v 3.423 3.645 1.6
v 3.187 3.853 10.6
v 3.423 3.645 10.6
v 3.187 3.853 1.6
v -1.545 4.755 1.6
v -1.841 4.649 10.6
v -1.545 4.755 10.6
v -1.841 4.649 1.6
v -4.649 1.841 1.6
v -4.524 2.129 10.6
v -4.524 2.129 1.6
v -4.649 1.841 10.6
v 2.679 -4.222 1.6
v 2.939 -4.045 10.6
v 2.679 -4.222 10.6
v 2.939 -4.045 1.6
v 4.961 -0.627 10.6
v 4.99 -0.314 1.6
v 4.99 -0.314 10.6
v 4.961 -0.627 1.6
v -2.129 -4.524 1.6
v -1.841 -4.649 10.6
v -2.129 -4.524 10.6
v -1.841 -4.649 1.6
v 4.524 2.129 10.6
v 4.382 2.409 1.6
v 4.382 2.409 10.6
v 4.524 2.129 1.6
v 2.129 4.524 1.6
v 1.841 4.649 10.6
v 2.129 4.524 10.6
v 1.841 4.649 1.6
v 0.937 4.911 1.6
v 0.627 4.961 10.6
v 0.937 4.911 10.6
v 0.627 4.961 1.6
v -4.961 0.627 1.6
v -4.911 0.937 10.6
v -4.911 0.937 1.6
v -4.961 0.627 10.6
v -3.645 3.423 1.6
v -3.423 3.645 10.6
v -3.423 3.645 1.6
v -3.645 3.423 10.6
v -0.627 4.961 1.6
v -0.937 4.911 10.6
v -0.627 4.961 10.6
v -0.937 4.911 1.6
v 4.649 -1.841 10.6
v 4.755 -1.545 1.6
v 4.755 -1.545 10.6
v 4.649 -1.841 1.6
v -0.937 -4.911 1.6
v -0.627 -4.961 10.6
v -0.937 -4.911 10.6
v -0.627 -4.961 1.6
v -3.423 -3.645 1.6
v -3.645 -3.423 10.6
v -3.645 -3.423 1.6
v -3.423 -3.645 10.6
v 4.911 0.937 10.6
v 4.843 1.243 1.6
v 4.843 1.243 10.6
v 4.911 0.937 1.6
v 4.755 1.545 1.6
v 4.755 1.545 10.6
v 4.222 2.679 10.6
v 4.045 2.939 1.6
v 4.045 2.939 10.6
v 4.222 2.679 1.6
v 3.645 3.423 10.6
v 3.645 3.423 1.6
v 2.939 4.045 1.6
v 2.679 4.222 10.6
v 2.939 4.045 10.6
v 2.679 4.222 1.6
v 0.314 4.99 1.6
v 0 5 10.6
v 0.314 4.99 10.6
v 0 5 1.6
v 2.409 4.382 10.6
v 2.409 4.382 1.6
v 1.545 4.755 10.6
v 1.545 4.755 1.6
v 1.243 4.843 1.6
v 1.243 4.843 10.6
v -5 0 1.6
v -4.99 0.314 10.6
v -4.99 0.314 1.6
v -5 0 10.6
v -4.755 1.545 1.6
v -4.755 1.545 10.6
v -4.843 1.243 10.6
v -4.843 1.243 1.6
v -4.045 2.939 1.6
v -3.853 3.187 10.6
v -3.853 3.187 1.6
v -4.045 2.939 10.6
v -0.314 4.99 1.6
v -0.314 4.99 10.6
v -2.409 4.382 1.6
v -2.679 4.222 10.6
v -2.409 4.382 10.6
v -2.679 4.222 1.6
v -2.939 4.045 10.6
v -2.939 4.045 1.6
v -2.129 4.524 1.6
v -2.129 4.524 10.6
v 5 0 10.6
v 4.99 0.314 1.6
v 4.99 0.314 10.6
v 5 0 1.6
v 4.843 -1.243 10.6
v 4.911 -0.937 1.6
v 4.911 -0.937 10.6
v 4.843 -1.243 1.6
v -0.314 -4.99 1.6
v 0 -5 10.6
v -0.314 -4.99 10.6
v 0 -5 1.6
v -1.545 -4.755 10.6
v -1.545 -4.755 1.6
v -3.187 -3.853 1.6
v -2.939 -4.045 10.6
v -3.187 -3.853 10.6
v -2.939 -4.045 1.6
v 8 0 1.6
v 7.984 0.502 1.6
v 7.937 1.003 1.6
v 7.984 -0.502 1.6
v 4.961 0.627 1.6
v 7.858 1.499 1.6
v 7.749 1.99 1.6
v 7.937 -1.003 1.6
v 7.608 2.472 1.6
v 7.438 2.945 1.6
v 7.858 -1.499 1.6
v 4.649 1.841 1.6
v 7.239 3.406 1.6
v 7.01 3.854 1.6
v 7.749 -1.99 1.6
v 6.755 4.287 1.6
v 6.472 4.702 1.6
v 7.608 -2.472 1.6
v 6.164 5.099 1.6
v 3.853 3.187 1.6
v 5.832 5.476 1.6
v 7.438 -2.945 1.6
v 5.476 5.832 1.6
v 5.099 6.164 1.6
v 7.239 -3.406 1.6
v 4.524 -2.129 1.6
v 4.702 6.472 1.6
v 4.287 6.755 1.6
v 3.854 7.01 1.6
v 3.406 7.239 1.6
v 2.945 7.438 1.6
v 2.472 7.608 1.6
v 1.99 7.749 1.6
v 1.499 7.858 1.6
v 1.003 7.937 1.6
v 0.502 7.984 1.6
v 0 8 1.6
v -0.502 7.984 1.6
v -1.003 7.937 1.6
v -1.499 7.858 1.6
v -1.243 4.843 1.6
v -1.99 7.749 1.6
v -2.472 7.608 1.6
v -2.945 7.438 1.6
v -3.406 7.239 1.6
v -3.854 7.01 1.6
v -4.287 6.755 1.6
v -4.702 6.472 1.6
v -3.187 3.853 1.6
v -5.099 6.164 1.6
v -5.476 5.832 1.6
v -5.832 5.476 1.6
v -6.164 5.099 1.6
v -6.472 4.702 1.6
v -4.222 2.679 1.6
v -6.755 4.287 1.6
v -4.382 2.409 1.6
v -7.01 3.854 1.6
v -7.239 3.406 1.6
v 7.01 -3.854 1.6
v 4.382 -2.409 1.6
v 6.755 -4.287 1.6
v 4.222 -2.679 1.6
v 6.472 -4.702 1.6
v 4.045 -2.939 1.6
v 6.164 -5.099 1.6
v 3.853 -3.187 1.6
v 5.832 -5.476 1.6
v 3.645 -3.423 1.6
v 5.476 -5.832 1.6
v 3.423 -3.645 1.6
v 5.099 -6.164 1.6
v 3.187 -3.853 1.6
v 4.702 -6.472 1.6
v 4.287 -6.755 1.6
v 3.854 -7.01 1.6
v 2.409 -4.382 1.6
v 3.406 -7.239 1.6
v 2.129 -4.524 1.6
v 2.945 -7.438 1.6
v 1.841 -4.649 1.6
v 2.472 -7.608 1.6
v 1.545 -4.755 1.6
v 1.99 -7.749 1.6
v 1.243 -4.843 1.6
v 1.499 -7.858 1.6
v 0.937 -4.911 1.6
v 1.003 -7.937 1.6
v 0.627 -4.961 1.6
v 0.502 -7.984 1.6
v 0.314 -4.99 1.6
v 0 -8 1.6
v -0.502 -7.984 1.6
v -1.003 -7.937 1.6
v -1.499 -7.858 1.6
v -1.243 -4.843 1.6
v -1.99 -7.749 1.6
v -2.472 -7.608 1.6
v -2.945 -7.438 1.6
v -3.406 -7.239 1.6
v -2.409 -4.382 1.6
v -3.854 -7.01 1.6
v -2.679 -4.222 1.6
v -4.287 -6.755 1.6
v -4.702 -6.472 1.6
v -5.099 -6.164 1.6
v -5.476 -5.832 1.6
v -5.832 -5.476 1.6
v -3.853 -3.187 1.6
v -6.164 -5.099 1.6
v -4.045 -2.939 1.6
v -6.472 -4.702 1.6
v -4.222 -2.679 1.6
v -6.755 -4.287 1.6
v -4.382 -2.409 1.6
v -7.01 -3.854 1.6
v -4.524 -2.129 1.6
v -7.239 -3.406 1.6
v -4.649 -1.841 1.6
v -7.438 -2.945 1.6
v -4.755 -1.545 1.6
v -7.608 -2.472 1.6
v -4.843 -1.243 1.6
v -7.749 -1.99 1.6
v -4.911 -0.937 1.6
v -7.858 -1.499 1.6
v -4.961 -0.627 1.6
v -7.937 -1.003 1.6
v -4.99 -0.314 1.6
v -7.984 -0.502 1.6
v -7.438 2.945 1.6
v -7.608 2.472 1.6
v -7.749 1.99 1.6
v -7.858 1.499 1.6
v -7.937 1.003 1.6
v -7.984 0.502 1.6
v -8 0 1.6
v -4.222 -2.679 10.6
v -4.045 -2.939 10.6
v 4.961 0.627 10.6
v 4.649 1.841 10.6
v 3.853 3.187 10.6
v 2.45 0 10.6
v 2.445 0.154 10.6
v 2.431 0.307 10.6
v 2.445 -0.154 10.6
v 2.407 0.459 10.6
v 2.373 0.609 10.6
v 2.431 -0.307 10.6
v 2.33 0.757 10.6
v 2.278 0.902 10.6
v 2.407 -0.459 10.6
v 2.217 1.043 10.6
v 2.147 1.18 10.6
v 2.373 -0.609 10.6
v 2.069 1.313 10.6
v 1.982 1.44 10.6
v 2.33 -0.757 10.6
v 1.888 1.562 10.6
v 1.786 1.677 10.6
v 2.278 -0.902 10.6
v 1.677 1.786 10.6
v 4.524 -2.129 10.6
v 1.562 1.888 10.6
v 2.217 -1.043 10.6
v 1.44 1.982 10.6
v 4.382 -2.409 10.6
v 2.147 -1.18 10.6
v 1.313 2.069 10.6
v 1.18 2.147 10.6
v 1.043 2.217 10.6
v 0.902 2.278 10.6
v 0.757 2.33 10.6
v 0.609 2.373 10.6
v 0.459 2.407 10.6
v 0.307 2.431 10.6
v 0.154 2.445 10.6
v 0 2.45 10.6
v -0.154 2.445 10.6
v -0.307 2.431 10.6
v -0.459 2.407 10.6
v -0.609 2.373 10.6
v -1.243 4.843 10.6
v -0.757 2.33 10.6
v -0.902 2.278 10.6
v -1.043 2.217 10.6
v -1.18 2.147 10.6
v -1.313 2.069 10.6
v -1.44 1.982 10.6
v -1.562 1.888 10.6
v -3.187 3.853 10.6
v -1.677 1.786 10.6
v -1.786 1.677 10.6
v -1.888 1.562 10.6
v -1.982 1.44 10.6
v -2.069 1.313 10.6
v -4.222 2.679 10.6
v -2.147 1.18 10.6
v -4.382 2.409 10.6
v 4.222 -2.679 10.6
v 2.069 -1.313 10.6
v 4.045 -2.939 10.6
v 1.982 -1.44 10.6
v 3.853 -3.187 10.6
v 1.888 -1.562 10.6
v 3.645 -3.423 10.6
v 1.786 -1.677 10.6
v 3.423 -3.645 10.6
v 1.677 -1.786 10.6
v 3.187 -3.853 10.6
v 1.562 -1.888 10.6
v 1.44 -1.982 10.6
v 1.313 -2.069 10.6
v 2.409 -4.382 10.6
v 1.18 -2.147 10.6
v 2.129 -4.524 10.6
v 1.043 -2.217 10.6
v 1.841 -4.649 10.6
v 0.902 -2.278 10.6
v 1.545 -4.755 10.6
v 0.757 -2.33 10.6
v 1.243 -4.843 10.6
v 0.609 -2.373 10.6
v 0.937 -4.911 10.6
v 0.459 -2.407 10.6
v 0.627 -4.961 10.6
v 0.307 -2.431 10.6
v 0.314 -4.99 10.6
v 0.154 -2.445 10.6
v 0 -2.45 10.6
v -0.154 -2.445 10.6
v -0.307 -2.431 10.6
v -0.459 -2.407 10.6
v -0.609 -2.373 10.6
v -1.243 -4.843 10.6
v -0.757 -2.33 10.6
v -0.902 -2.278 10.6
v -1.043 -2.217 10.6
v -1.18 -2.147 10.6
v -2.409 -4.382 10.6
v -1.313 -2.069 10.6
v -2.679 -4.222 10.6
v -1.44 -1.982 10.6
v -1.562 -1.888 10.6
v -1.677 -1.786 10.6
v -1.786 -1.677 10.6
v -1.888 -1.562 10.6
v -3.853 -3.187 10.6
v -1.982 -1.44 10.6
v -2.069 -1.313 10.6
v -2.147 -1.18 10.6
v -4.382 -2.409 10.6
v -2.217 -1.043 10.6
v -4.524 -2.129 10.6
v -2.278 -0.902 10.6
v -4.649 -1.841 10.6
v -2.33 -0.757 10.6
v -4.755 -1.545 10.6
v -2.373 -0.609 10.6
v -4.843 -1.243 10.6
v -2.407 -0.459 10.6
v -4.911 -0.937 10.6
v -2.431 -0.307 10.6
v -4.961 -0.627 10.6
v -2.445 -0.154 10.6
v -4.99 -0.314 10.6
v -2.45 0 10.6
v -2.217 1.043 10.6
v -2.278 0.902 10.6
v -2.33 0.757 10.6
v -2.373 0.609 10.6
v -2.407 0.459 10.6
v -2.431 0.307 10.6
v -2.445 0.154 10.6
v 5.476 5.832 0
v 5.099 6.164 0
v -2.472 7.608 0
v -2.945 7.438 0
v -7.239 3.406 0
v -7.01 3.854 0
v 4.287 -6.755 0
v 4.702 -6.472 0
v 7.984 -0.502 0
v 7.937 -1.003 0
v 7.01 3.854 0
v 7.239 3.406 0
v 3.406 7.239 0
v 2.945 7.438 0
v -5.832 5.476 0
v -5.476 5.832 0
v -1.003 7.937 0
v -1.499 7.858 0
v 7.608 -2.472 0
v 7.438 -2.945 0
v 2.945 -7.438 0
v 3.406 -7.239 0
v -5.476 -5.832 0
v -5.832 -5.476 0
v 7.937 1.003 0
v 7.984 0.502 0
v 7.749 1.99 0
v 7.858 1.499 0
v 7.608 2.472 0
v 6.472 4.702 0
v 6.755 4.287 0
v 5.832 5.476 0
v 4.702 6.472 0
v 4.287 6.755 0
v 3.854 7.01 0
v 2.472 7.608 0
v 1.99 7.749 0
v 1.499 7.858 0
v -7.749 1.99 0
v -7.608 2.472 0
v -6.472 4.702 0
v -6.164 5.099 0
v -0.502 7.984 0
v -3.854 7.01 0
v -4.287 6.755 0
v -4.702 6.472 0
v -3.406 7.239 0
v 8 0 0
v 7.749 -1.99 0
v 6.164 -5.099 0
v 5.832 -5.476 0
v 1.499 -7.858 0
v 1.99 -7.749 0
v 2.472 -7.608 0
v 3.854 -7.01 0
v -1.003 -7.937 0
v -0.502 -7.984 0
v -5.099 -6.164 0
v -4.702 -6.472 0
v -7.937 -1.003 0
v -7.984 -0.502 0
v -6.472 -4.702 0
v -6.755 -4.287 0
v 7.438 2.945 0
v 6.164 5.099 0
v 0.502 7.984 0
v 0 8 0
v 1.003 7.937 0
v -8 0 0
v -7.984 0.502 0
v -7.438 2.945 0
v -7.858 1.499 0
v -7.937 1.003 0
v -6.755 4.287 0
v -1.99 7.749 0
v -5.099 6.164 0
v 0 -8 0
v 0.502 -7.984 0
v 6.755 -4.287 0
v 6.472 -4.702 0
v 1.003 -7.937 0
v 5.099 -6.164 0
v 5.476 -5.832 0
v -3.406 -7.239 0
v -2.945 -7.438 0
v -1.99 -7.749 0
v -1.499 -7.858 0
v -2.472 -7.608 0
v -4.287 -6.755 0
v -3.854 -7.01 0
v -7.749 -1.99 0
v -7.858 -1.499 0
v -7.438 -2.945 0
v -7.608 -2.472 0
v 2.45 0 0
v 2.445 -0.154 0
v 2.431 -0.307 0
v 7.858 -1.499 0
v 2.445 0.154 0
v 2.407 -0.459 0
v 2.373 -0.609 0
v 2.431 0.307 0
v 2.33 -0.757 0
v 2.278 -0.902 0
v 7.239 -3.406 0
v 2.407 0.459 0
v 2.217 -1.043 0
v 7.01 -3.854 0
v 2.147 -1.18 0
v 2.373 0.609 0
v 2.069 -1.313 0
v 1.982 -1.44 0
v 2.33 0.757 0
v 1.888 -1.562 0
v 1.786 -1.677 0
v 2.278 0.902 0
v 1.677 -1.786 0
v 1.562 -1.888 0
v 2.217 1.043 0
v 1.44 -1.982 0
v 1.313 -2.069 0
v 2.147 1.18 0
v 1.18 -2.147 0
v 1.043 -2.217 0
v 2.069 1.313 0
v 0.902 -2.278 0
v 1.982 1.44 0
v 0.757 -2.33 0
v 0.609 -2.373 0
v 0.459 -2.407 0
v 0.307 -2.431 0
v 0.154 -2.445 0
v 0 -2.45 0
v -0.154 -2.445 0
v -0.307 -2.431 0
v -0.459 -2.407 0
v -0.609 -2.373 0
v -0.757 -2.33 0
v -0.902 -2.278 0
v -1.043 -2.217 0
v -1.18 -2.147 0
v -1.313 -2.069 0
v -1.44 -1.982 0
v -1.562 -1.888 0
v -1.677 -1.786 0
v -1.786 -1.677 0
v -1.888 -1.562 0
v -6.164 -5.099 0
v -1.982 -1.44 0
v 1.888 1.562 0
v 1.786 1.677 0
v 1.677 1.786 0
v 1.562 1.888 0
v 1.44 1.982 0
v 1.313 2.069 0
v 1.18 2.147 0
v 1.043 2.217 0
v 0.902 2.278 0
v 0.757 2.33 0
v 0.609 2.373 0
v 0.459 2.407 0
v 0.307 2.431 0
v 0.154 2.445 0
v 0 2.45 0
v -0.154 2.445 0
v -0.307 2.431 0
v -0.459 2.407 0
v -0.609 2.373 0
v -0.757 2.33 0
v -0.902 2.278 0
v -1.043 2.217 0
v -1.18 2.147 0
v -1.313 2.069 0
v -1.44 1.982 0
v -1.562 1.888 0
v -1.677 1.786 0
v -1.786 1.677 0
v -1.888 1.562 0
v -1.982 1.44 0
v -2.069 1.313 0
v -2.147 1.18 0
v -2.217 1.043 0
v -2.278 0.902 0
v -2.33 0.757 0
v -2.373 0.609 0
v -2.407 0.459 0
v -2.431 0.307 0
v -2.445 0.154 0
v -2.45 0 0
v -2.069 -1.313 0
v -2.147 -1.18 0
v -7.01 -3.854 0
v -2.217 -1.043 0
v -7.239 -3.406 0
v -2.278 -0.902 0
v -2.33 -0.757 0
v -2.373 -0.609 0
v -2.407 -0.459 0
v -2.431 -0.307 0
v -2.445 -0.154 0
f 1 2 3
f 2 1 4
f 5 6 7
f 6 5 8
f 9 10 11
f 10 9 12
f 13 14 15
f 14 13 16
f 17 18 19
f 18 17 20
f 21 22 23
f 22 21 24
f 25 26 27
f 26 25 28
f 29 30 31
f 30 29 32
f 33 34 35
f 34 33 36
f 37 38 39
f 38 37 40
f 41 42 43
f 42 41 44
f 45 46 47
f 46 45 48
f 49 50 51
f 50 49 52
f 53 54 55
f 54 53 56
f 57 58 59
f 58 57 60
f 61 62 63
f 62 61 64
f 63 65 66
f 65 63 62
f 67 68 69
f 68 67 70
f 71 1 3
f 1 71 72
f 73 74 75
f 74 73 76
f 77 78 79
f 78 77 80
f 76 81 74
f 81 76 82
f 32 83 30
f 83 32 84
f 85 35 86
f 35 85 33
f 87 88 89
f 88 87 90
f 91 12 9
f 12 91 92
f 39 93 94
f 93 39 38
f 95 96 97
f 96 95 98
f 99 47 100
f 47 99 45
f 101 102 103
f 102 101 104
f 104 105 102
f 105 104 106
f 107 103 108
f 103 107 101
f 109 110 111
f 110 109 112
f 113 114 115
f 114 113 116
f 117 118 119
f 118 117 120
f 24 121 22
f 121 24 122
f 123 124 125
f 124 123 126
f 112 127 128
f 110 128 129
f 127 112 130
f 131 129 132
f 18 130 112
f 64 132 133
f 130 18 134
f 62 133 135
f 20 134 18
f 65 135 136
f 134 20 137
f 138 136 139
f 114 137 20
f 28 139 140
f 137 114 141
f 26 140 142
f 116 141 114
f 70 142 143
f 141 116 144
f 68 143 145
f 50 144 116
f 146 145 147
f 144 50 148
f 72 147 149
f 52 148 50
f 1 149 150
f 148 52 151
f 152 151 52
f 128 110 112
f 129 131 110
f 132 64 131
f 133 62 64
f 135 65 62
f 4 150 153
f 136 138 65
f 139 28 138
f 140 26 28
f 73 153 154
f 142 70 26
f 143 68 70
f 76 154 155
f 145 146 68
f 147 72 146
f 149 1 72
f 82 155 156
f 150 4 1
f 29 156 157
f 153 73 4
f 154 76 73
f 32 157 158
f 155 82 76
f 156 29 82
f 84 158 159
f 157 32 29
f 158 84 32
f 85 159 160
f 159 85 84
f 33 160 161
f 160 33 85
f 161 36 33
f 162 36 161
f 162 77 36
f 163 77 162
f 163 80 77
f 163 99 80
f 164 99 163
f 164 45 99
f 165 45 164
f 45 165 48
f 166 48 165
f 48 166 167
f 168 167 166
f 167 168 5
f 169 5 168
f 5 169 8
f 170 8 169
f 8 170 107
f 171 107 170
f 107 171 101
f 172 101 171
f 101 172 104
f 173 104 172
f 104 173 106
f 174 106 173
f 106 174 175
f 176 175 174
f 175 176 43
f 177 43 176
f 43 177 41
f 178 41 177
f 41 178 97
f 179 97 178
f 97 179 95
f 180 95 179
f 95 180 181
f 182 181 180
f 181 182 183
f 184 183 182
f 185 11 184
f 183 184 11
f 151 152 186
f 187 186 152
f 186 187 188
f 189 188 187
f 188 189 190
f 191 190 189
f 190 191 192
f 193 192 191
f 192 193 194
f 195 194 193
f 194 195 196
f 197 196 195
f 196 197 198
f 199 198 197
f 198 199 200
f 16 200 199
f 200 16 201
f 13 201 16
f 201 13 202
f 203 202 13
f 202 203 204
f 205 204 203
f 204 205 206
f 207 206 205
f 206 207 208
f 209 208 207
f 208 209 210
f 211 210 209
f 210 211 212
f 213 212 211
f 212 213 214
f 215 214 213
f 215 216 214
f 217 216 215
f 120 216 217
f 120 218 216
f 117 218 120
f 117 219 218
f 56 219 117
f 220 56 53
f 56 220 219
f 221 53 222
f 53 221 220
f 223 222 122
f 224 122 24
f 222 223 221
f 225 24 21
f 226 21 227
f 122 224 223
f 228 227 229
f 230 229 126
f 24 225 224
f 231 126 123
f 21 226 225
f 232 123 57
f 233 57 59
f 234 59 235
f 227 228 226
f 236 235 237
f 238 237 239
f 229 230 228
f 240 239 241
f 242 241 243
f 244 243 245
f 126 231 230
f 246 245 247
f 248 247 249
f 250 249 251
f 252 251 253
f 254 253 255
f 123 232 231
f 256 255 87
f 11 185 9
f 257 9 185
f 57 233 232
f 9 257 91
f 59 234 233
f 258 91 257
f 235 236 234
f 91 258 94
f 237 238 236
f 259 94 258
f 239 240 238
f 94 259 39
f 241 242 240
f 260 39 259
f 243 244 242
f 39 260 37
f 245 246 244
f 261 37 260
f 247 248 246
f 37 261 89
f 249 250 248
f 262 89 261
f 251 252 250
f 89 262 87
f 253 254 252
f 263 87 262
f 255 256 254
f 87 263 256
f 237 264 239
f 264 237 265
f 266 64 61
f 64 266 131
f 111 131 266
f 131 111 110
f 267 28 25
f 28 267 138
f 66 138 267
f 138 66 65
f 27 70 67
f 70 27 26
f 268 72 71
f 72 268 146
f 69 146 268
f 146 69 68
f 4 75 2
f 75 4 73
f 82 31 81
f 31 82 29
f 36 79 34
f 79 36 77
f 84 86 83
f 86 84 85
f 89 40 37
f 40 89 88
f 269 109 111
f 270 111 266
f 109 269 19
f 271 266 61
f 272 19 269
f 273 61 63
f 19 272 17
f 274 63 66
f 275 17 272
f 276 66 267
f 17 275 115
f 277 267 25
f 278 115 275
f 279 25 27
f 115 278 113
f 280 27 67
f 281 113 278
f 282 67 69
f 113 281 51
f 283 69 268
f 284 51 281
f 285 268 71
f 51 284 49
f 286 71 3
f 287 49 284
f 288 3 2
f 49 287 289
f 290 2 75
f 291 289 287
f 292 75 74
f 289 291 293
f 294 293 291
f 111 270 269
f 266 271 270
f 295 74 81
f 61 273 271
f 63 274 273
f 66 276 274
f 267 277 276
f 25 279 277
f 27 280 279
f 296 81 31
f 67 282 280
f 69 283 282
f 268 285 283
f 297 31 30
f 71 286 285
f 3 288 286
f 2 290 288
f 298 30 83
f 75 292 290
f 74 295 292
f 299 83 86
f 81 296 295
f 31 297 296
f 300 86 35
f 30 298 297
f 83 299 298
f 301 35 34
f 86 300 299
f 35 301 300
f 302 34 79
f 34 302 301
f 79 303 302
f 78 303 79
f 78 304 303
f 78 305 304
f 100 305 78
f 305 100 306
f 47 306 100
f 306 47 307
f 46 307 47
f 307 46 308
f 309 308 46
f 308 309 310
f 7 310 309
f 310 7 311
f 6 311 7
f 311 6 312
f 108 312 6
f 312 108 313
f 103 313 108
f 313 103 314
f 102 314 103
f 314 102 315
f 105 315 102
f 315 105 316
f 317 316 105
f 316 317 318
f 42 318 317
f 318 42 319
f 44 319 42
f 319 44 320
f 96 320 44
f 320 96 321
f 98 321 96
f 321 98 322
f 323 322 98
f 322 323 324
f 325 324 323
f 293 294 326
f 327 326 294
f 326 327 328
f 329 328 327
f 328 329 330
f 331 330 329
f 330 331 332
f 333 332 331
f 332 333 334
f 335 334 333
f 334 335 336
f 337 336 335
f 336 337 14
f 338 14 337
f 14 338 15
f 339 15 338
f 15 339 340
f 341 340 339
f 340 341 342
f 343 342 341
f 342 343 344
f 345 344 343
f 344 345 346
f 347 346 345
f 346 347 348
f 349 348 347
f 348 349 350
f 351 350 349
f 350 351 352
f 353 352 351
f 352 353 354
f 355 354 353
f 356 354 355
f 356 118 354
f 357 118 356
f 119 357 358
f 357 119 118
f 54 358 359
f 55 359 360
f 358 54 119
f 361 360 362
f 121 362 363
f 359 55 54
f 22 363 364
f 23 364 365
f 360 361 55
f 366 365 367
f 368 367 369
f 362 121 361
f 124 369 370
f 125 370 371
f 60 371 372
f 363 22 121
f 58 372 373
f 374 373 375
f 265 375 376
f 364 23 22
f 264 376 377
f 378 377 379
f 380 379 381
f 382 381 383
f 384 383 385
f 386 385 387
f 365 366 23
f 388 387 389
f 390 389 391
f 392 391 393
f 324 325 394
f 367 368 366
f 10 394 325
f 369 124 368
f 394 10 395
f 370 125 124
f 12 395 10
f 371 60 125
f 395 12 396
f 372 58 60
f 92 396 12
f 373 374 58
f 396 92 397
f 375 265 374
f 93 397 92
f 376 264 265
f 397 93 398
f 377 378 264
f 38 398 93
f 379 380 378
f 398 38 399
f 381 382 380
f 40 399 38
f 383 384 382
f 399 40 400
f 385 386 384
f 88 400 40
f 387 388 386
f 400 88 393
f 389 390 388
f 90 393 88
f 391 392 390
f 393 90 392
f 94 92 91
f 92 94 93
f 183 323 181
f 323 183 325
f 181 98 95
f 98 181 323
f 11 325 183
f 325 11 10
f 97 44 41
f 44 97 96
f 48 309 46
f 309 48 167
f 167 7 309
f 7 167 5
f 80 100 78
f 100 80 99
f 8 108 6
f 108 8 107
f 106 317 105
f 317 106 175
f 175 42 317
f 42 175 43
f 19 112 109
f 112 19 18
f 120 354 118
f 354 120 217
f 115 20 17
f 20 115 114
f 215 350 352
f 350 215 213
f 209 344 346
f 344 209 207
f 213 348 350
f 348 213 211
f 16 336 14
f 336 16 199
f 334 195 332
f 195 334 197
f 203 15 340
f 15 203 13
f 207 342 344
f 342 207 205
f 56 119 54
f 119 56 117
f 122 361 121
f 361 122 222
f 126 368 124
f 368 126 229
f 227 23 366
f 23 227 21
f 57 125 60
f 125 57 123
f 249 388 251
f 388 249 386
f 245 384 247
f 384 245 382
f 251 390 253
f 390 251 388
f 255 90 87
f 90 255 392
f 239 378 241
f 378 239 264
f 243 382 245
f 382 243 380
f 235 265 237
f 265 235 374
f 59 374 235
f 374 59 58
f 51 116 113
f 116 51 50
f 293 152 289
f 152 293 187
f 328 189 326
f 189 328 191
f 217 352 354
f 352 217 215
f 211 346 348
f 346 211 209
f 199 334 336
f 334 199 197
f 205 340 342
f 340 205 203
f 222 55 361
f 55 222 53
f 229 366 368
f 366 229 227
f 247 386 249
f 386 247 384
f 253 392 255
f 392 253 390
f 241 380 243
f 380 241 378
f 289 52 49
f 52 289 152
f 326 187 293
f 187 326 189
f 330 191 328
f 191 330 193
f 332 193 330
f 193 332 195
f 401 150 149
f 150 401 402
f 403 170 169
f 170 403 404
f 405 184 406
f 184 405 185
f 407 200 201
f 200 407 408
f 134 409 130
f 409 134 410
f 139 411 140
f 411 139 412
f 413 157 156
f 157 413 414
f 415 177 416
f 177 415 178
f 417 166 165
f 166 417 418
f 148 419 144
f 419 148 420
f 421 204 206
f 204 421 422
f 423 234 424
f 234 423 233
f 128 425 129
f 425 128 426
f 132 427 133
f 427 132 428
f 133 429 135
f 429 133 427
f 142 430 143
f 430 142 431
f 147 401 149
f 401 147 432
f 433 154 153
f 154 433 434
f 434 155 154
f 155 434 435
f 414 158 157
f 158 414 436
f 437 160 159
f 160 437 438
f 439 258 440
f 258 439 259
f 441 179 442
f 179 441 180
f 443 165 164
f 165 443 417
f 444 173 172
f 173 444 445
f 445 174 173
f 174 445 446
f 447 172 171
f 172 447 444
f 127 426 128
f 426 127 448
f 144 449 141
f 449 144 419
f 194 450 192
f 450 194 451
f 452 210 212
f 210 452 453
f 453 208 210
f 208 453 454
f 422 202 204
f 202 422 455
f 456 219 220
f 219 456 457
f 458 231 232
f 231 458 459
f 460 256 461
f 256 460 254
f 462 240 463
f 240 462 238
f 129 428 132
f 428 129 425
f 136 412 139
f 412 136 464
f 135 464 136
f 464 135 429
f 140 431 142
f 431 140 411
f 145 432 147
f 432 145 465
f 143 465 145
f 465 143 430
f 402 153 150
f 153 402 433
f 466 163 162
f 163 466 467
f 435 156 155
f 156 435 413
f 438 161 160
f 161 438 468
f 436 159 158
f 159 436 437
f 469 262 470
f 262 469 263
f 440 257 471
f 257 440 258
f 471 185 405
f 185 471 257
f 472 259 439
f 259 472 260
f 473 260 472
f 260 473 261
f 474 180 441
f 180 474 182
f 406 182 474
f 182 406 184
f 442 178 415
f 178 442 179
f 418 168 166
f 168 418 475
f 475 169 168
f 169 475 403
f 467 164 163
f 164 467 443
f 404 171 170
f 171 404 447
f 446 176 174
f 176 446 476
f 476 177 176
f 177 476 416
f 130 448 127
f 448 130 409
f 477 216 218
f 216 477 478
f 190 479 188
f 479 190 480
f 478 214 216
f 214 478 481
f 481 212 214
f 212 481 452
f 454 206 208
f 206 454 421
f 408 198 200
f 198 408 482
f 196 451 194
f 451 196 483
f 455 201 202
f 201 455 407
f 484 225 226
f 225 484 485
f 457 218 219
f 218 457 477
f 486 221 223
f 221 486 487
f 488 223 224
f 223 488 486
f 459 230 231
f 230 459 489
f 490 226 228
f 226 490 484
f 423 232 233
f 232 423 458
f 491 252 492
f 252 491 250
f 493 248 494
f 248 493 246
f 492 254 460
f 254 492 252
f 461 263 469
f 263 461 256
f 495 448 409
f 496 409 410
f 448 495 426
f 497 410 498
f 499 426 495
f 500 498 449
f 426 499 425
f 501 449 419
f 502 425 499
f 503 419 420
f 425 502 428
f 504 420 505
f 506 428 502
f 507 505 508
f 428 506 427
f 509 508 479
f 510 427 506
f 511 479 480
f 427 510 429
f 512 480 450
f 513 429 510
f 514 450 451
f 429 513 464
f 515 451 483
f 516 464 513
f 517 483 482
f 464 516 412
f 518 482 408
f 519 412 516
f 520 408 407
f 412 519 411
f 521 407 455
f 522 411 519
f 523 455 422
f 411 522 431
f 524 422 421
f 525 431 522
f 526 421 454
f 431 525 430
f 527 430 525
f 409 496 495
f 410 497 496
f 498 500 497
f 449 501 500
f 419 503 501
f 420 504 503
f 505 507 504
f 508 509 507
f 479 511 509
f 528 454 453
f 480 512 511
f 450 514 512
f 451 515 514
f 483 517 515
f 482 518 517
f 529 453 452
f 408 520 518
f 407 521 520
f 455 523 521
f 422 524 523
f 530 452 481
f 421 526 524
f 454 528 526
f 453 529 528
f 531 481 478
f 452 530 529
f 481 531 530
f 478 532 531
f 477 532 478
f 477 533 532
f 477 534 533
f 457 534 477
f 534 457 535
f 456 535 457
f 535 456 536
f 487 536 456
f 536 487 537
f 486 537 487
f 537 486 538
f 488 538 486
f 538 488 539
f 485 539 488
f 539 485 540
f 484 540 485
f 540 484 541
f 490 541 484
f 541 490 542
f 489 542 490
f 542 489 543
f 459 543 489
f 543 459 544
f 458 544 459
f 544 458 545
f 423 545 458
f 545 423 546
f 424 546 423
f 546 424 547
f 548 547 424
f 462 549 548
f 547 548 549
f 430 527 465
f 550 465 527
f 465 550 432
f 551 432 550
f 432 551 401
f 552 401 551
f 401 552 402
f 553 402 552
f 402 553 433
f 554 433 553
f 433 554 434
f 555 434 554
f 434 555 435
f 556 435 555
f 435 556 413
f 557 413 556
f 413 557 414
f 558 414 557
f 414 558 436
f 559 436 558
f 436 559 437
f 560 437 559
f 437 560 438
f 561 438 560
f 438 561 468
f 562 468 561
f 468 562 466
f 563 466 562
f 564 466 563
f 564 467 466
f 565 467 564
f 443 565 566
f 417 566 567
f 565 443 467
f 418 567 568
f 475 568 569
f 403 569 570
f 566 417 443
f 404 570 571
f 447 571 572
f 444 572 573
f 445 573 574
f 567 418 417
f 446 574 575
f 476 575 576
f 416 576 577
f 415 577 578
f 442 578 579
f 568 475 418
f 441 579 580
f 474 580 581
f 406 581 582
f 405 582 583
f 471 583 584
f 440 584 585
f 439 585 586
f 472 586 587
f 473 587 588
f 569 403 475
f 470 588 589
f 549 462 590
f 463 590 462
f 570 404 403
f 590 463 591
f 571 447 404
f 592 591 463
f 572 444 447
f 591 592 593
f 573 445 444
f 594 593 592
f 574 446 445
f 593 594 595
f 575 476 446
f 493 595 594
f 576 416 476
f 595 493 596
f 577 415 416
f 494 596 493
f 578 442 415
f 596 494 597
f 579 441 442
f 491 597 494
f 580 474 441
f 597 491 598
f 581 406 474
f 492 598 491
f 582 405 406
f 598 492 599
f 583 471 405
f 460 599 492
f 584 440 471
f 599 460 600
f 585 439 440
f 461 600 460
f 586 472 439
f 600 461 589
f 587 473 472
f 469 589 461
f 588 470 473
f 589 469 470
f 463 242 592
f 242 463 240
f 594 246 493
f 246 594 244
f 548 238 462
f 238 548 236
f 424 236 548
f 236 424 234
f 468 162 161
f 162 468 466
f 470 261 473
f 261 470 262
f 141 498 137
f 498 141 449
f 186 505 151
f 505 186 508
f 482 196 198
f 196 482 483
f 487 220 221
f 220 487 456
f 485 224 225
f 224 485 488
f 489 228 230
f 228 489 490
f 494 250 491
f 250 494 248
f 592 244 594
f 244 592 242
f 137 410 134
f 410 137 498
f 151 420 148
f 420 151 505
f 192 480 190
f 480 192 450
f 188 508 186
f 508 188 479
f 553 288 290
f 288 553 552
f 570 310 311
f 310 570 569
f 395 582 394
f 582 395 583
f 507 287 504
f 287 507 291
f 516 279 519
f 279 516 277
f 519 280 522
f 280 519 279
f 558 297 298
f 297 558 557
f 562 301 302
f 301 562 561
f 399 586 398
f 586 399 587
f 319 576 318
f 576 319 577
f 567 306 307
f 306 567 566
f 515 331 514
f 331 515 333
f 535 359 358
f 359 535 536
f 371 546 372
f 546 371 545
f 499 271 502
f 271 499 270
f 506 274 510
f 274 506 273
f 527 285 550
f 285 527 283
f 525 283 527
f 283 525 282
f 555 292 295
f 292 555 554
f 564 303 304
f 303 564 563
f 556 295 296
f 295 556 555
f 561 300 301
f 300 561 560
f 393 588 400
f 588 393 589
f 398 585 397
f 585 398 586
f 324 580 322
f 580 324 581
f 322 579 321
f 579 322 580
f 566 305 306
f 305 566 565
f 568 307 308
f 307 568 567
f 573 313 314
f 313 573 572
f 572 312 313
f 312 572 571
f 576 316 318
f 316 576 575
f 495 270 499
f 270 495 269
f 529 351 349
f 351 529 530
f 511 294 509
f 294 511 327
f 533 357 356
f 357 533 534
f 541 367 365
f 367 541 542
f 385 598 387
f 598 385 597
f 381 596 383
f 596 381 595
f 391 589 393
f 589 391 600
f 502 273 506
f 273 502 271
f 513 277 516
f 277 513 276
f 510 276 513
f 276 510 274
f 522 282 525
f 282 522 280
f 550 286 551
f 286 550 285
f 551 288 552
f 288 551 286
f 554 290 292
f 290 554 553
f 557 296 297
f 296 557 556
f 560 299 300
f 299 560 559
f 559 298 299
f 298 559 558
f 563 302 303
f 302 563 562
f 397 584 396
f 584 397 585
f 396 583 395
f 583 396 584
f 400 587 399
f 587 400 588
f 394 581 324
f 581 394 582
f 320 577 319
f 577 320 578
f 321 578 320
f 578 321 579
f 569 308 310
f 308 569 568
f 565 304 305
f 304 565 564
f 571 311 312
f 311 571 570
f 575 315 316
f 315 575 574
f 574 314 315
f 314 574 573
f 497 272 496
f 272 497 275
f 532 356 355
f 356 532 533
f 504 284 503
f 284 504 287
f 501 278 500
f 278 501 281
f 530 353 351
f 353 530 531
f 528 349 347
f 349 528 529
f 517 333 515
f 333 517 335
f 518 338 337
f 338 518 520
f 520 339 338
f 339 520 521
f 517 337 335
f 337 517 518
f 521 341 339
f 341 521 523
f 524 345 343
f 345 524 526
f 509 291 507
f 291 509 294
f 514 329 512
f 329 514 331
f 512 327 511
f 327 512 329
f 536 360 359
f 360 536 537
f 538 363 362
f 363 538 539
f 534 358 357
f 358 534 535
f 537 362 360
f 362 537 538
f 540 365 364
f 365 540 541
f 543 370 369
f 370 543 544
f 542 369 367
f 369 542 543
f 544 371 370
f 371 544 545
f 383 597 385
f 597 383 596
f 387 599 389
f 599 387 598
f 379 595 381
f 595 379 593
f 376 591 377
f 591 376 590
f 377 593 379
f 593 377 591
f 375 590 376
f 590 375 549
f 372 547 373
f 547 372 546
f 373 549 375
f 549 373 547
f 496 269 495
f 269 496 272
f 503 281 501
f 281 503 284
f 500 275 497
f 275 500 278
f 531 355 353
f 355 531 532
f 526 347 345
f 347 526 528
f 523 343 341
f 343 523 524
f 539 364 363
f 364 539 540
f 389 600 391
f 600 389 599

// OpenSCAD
$fn=100;
diametro_vite = 4.9;
module Vite(){
    cylinder(30,diametro_vite/2,diametro_vite/2);
}


//vite();

diametro_perno =  10;
altezza_legno = 18;
altezza_rondella = 1.6;
diametro_rondella = 16;




module Mezzo_perno(){
    translate([0,0,altezza_rondella]){
        cylinder(altezza_legno/2,diametro_perno/2,diametro_perno/2);
        }
    cylinder(altezza_rondella,diametro_rondella/2,diametro_rondella/2);
}
    
    
    
 difference(){
Mezzo_perno();
Vite();
 }
